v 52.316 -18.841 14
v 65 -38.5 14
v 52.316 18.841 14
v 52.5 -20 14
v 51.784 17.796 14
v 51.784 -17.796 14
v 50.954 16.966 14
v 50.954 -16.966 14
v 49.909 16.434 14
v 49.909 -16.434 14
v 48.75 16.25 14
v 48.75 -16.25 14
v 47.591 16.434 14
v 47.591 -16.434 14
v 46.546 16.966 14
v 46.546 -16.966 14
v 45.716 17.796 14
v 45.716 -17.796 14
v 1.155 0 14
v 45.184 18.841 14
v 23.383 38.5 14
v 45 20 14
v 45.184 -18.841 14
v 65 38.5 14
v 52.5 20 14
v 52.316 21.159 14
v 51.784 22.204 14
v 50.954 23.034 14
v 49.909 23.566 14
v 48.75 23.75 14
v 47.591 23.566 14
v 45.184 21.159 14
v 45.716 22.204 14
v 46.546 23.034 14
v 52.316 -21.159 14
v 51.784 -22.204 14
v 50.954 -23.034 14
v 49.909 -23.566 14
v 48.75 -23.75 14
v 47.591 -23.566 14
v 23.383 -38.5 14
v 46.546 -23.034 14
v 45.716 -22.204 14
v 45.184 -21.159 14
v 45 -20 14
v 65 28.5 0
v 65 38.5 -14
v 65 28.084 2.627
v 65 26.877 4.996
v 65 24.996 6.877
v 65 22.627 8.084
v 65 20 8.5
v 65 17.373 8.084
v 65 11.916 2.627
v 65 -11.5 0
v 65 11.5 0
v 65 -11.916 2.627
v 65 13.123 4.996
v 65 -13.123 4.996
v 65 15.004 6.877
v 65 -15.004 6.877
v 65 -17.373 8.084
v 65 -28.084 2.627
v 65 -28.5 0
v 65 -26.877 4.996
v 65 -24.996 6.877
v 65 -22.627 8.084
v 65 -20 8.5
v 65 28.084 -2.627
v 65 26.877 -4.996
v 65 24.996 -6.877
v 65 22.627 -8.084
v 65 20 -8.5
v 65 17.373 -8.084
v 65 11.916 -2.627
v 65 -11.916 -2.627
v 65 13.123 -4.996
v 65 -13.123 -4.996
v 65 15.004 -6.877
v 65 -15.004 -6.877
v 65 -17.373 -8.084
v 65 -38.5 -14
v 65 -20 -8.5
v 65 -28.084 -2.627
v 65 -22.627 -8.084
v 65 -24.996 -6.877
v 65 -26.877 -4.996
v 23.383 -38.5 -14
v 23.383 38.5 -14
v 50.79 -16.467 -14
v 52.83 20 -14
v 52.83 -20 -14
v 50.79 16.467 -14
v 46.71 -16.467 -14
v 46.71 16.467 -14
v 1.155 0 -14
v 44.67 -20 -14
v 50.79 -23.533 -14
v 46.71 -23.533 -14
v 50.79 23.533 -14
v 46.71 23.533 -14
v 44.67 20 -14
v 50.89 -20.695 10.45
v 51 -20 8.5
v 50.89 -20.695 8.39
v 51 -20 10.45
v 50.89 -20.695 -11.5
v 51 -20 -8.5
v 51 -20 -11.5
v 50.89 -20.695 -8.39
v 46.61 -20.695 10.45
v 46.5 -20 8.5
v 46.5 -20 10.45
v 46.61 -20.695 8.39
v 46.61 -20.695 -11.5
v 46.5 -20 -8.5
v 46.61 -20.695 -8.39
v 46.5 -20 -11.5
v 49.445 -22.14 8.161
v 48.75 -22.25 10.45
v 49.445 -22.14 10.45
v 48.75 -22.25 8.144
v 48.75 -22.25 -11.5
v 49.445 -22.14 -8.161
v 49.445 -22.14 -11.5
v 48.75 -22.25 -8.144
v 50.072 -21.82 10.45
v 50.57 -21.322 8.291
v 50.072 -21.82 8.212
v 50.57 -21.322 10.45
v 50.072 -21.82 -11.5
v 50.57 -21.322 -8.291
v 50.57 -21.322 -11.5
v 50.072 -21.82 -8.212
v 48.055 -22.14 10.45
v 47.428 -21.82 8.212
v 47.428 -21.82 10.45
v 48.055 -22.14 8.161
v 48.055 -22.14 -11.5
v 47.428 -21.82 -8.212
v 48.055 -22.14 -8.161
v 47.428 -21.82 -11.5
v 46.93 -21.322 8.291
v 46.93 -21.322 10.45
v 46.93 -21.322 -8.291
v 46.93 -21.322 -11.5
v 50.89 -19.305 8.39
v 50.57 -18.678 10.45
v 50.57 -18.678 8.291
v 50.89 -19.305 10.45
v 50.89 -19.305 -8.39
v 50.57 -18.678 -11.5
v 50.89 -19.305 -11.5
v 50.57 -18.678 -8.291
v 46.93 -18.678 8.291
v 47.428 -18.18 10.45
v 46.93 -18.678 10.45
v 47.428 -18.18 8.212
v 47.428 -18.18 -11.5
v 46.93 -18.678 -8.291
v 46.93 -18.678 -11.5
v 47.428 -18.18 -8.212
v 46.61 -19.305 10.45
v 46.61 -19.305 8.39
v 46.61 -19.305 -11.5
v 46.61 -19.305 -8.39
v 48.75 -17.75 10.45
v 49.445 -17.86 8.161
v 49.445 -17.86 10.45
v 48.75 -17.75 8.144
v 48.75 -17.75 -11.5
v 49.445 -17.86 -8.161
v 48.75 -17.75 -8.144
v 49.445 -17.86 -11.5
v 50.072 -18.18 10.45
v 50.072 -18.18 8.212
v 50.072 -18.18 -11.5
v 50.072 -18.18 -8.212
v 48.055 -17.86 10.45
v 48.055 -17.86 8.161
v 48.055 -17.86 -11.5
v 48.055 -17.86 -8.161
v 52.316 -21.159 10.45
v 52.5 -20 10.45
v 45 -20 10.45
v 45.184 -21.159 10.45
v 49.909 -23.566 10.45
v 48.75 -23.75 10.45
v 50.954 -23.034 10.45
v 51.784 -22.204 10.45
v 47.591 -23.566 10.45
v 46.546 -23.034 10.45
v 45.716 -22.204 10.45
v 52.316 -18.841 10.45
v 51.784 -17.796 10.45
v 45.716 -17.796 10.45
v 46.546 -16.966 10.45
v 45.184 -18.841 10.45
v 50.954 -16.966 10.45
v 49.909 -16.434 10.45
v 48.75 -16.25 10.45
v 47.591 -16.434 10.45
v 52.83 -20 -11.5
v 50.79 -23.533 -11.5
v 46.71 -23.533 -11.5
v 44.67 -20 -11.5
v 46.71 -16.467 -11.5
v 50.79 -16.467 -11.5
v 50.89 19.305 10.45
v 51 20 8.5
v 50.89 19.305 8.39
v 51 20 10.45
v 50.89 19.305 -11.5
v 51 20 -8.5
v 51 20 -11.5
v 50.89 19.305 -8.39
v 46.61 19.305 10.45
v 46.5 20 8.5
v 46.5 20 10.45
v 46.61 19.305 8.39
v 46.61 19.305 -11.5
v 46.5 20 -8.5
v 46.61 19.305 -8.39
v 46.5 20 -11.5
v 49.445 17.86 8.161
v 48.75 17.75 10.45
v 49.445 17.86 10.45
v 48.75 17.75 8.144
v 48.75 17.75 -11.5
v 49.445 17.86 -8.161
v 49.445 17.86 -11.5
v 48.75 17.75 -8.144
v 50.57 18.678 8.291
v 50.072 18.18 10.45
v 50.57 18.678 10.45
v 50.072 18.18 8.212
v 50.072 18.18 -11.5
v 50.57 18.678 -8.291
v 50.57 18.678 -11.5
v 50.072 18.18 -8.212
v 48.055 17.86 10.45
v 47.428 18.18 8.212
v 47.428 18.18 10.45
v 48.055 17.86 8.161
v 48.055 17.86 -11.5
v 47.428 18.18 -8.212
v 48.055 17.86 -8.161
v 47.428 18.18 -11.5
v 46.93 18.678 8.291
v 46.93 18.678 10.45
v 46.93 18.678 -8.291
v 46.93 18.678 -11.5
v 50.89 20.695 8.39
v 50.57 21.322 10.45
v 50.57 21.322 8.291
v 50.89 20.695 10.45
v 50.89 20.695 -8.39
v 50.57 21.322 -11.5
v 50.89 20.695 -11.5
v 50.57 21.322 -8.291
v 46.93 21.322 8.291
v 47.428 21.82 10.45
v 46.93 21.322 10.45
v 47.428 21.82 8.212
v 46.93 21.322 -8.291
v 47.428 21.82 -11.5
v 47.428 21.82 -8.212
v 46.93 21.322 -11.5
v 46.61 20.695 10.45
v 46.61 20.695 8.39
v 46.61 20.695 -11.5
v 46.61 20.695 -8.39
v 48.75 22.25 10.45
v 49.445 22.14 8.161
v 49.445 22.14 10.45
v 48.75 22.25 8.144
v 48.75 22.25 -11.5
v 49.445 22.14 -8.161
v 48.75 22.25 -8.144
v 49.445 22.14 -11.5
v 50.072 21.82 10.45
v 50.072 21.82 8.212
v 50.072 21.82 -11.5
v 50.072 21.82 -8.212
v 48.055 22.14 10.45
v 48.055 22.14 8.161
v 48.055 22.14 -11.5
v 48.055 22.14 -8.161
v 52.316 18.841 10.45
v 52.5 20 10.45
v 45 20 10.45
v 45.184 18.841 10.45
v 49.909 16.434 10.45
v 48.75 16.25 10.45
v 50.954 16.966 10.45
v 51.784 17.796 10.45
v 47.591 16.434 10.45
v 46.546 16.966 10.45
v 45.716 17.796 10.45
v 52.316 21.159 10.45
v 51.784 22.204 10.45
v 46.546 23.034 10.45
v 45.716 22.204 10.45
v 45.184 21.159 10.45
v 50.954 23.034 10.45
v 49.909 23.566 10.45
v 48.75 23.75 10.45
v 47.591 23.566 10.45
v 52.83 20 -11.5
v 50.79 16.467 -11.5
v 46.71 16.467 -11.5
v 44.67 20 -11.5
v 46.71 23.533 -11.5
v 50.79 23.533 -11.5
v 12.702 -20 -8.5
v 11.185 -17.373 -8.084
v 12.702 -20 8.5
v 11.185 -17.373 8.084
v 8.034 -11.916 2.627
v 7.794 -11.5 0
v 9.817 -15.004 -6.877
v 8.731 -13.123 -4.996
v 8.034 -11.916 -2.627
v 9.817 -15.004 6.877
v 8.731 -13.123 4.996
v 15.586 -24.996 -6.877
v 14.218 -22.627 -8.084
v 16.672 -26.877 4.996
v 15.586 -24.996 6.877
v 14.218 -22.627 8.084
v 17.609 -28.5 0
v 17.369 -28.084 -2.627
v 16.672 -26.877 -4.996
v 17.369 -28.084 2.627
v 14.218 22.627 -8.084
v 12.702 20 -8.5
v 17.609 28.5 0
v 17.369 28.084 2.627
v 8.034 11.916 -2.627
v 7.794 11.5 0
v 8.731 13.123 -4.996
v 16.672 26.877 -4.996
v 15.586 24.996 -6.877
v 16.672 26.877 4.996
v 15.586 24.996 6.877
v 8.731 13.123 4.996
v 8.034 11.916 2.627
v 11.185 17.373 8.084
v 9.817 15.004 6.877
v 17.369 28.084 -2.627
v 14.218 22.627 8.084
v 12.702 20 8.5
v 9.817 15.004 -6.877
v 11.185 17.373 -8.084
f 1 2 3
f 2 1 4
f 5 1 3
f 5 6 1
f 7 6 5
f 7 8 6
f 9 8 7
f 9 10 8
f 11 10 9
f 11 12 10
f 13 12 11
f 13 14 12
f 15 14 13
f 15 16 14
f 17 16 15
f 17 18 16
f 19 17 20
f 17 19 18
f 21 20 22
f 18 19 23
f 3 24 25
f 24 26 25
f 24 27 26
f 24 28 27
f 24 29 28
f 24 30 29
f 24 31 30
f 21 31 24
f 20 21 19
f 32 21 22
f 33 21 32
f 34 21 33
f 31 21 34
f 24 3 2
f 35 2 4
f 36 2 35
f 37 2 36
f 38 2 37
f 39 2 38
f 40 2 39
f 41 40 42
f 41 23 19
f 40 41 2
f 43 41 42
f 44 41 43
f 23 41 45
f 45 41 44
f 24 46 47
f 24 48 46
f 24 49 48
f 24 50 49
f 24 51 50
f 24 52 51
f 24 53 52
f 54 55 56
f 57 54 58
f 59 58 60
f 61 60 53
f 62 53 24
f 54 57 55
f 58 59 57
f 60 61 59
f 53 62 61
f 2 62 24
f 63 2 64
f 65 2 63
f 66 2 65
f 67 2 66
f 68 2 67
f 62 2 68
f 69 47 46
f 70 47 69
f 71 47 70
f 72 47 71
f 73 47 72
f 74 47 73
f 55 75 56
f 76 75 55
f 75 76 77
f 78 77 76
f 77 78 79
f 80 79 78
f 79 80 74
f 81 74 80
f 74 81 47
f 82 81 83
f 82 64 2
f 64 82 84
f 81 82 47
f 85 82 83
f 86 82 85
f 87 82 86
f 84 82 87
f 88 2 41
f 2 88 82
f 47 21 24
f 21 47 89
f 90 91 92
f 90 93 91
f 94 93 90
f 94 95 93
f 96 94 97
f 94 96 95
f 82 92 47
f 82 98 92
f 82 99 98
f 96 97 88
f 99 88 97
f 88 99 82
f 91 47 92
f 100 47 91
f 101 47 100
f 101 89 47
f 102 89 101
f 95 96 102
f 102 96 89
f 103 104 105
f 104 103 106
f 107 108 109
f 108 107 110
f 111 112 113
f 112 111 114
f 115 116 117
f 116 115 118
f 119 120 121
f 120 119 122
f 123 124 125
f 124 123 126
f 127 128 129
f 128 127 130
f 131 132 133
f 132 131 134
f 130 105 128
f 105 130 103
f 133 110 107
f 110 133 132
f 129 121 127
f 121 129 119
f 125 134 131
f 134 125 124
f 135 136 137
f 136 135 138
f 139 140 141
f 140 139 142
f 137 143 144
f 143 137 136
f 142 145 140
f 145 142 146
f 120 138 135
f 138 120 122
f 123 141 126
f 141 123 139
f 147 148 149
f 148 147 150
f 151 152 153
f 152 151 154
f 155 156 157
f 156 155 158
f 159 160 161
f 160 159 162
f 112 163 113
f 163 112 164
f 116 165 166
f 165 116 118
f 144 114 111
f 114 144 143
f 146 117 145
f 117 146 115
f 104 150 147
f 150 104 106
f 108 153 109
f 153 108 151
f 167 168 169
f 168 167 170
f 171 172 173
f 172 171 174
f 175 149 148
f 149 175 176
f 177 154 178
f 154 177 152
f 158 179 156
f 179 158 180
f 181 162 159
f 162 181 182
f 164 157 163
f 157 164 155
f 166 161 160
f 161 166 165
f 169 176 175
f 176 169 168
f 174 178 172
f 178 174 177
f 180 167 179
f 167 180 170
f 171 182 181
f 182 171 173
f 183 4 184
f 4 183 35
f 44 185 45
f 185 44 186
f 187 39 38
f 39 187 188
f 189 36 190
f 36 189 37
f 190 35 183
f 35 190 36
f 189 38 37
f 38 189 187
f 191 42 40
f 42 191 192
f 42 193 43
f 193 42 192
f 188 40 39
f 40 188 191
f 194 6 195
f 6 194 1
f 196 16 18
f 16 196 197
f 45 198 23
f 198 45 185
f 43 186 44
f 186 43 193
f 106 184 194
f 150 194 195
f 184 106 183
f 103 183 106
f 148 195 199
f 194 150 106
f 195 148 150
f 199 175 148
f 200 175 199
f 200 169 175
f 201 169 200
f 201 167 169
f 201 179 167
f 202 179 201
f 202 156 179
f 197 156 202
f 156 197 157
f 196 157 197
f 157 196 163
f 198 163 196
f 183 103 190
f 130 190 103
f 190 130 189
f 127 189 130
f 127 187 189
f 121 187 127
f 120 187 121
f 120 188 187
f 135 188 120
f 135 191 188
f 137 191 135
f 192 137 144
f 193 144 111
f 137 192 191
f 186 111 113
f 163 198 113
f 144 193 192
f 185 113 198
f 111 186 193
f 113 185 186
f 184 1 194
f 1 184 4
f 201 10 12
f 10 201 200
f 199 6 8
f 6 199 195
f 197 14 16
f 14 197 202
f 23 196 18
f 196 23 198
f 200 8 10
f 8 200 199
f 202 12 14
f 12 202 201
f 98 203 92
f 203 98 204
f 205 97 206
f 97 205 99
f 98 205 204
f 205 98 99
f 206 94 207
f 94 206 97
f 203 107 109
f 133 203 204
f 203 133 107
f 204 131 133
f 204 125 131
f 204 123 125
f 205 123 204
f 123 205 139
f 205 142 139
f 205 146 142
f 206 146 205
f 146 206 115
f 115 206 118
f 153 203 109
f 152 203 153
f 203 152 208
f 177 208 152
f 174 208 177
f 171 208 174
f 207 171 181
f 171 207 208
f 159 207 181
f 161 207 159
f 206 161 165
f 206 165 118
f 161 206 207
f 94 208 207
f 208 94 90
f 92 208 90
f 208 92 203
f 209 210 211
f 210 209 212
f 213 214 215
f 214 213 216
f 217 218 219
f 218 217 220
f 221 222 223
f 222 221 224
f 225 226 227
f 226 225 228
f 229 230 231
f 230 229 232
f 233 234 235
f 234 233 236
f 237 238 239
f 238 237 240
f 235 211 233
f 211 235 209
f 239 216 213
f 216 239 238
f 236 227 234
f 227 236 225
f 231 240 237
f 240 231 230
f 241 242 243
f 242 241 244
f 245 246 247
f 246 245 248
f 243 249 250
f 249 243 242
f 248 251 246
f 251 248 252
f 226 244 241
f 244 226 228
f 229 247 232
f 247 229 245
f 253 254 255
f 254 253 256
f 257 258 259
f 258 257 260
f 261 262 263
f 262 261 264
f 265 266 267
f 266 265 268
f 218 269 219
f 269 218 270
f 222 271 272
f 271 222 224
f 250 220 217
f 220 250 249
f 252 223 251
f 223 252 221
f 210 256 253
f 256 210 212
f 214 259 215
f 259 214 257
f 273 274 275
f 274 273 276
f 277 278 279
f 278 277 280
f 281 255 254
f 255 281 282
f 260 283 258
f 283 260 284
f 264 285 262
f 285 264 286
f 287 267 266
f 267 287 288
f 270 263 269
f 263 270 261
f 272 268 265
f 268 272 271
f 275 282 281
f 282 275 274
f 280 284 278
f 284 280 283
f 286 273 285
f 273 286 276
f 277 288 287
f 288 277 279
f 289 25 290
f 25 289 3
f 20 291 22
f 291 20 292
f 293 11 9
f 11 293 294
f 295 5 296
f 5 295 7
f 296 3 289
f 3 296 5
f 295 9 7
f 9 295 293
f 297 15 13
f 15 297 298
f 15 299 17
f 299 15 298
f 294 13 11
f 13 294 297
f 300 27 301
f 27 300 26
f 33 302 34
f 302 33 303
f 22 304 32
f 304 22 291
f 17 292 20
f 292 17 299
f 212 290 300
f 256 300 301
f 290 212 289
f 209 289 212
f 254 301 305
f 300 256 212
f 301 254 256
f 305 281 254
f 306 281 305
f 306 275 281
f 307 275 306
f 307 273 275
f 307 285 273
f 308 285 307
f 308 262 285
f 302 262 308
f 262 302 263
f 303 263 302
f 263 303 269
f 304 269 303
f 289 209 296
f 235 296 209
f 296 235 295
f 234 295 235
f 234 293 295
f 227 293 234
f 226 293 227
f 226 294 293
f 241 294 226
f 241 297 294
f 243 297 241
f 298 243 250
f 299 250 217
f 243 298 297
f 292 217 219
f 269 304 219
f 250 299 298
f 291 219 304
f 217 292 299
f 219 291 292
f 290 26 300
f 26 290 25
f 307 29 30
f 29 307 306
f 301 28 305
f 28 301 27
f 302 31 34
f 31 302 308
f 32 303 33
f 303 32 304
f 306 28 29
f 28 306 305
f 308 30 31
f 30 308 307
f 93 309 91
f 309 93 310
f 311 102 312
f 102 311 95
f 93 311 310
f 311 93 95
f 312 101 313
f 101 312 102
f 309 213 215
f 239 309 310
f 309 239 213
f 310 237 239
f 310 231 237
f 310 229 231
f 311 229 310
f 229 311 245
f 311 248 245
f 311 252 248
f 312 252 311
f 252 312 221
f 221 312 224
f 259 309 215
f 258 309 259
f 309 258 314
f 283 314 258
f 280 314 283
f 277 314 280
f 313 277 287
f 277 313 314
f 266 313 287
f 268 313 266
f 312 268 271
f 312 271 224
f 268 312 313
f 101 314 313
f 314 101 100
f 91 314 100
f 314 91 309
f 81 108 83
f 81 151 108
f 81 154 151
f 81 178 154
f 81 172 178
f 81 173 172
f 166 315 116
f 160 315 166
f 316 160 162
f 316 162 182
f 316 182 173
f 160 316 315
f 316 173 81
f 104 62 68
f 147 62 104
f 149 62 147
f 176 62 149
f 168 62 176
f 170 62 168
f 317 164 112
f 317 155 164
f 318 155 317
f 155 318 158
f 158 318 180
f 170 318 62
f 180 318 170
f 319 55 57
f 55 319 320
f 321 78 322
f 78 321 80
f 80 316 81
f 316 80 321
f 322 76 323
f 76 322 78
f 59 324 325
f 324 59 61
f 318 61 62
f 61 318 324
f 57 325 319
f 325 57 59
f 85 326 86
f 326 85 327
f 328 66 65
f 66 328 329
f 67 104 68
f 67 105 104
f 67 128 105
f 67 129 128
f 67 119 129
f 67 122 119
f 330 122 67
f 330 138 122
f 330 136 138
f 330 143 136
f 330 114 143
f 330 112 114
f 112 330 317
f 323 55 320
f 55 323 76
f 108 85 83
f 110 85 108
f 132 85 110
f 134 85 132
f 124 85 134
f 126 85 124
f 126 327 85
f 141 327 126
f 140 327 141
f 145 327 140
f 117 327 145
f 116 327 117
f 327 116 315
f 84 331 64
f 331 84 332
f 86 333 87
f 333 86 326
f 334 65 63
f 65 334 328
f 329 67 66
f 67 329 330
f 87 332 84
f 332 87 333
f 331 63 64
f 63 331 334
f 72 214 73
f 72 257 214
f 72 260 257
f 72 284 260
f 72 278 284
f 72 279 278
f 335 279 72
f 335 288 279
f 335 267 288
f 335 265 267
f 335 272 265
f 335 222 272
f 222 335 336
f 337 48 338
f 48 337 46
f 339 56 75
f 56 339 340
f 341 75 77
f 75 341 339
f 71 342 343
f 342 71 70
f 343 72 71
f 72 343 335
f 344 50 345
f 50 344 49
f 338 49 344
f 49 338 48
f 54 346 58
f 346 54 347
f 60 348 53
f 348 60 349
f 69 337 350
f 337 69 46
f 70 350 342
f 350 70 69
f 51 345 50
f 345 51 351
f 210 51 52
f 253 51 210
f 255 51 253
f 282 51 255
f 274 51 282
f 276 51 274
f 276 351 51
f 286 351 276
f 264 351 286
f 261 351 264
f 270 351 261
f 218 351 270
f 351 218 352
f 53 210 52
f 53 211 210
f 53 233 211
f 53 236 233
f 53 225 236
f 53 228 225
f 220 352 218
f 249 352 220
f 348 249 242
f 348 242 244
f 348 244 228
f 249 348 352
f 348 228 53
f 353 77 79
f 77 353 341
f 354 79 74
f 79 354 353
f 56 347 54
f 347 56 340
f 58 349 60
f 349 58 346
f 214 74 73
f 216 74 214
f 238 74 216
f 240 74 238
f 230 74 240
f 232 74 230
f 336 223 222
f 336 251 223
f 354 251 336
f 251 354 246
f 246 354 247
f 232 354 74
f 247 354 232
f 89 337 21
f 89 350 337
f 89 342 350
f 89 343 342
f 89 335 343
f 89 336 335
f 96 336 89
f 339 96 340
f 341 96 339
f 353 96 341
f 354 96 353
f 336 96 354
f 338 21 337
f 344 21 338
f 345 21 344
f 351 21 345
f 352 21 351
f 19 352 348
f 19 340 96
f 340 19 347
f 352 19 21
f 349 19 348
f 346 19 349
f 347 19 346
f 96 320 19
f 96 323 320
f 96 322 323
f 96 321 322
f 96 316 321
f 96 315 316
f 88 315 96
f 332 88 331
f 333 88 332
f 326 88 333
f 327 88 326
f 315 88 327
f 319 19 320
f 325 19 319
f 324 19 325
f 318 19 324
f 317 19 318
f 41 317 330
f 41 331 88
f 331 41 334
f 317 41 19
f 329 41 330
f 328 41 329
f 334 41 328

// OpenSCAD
difference() {
	translate(v = [0, 0, -14.0000000000]) {
		union() {
			cylinder($fn = 20, d = 0, h = 28);
			rotate(a = [0, 0, 0.0000000000]) {
				translate(v = [0, -38.5000000000, 0]) {
					cube(size = [65, 77.0000000000, 28]);
				}
			}
		}
	}
	rotate(a = [0, 0, 60]) {
		translate(v = [0, -1, -17.0000000000]) {
			cube(size = [200, 50, 100]);
		}
	}
	rotate(a = [0, 0, -60]) {
		translate(v = [0, -49, -17.0000000000]) {
			cube(size = [200, 50, 100]);
		}
	}
	rotate(a = [0, 90, 0.0000000000]) {
		translate(v = [0, -20.0000000000, 7]) {
			cylinder($fn = 20, d = 17.0000000000, h = 100);
		}
		translate(v = [0, 20.0000000000, 7]) {
			cylinder($fn = 20, d = 17.0000000000, h = 100);
		}
		translate(v = [2, -20.0000000000, 48.7500000000]) {
			rotate(a = [0, -90, 0]) {
				rotate(a = [180, 0, 0]) {
					translate(v = [0, 0, -12.5000000000]) {
						union() {
							translate(v = [0, 0, false]) {
								cylinder($fn = 20, d = 4.5000000000, h = 39.2000000000);
							}
							translate(v = [0, 0, -14.1500000000]) {
								cylinder($fn = 20, d = 7.5000000000, h = 14.2000000000);
							}
							translate(v = [0, 0, 22]) {
								cylinder($fn = 6, d = 8.1600000000, h = 10);
							}
						}
					}
				}
			}
		}
		translate(v = [2, 20.0000000000, 48.7500000000]) {
			rotate(a = [0, -90, 0]) {
				rotate(a = [180, 0, 0]) {
					translate(v = [0, 0, -12.5000000000]) {
						union() {
							translate(v = [0, 0, false]) {
								cylinder($fn = 20, d = 4.5000000000, h = 39.2000000000);
							}
							translate(v = [0, 0, -14.1500000000]) {
								cylinder($fn = 20, d = 7.5000000000, h = 14.2000000000);
							}
							translate(v = [0, 0, 22]) {
								cylinder($fn = 6, d = 8.1600000000, h = 10);
							}
						}
					}
				}
			}
		}
	}
}
/***********************************************
*********      SolidPython code:      **********
************************************************
 
import os
cq = 20

render = False
os.environ["PRINTEDSCOPE_QUALITY"] = str(cq)

from lib.model_parameters import *
from solid import *
from solid.utils import *
import numpy as np


g1p1_bearing = bearing_625
g1g1_space = 3 # jak velka bude mezera mezi zakladnou na zemi a AZ sestavou
g1p1_pipe_center_distance = 7 # jak daleko konci trubka od stredu
g1_pipe_in = 40
g1p1_diameter = 65
g1_foot_height = 60
g1_pipe_bolt = M4
g1_pipe_bolt['l'] = 35


g1_foot_length = 100
g1_foot_width = 50
g1_pipe_distance = 40
g1_pipe = pipe_16_2
g1_pipe['min_wall'] = 5
g1p4_wall = 2

g1_foot_bridge_height = 10
g1_foot_bridge_length =  g1_foot_length-50

#g1_foot_length = g1_pipe_distance+g1_pipe['D']+2*g1_pipe['min_wall']

# kostka, na ktere to lezi na zemi...
g1p2_width = 50
g1p2_length = 100
g1p2_height = g1_foot_height

def s111g1p01():
    pipe_bolt = g1_pipe_bolt
    pipe_height = pipe_bolt['l']
    pipe_height += pipe_bolt['k']
    #bottom = -(pipe_height-g1_pipe['min_wall']-g1_pipe['D']/2)-clear

    g1p1_cube_length = 65
    g1p1_base_height = 35+3

    bottom = -(g1p1_base_height/2)-clear

    #zakladni valec s kostkami pro trubky
    m= cylinder(h=g1p1_base_height, d=115, segments=cq)
    for x in range(3):
        m+= rotate([0, 0, 360/3*x])(
            translate([0, -(g1_pipe['D']+g1_pipe_distance+4*g1_pipe['min_wall'])/2,0])(
                cube([g1p1_cube_length, g1_pipe['D']+g1_pipe_distance+4*g1_pipe['min_wall'], g1p1_base_height])
            )
        )
    m = down(g1p1_base_height/2)(m)
    #m = hull()(m)

    m+= up(g1p1_base_height/2-1.1)(
            difference()(
                cylinder(h=5, d=80, segments=cq),
                down(clear/2)(cylinder(h=10+clear, d=80-3, segments=cq))
            )
        )
    
    m-=(up(g1p1_base_height/2-g1_pipe['min_wall']+1)(cylinder(h=5+clear, d1=80-3-5, d2=80-3, segments=cq)))


    for x in range(3):
        m-= rotate([0, 90, 360/3*x])(
            # diry pro zastrceni trubky
            translate([0, -g1_pipe_distance/2, g1p1_pipe_center_distance])(
                cylinder(d= base_pipe['D'], h=100, segments=cq)
            ),
            translate([0, g1_pipe_distance/2, g1p1_pipe_center_distance])(
                cylinder(d= base_pipe['D'], h=100, segments=cq)
            ),
            # diry pro srouby skrz trubky
                translate([2, -g1_pipe_distance/2, g1p1_diameter*0.75])(
                rotate([0, -90, 0])(
                    bolt_hole(pipe_bolt, nut=-3, align='center')
                )
            ),
            translate([2, g1_pipe_distance/2, g1p1_diameter*0.75])(
                rotate([0, -90, 0])(
                    (bolt_hole(pipe_bolt, nut=-3, align='center'))
                )
            ),

            # otvor pro srouby pro pridelani lozisek
            translate([0, 0, (g1p1_bearing['D'])])(
                left(bottom+g1p1_base_height-2-M3['k']-g1p1_bearing['B'])(
                    rotate([0, 180, 90])(
                        nut_pocket(pipe_bolt, g1p1_bearing['D'])
                    )
                ),
                left(bottom-1+M3['m']+g1p1_bearing['B'])(
                    rotate([0, 180, 90])(
                        nut_pocket(pipe_bolt, g1p1_bearing['D'])
                    )
                ),
                left(bottom+105+layer*1.5)(rotate([0, 90, 0])(
                    cylinder(d=M3['d'], h=100, segments=cq)
                ))
            )
        )

    # dira pro vyvedeni kabelu
    m -= translate([20, g1_pipe_distance/2, bottom+g1p1_base_height/2+clear])(
            cylinder(d=8, h=g1p1_base_height+clear)
        )
    m -= translate([20, -g1_pipe_distance/2, bottom+g1p1_base_height/2+clear])(
            cylinder(d=8, h=g1p1_base_height+clear)
        )

    # diry skrz pro loziska a sroub M5 a osazeni pro pridelani loziska
    m -= up(bottom)(
            cylinder(d=g1p1_bearing['D']+4*M3['dk']+1, h=M3['k']+2)
        )
    m -= up(bottom+M3['k']+2+layer*1)(
            debug(cylinder(d=g1p1_bearing['D'], h=g1p1_bearing['B'], segments=cq)) # Lozisko spodni
        )
    m -= up(bottom+M3['k']+2+layer*2+g1p1_bearing['B'])(
            cylinder(d=g1p1_bearing['D']-4, h=50, segments=cq)
        )
    m -= up(bottom+g1p1_base_height-M3['k']-2- g1p1_bearing['B'])(
            debug(cylinder(d=g1p1_bearing['D'], h=g1p1_bearing['B'], segments=cq))  # Lozisko horni
        )
    m -= up(bottom+g1p1_base_height-M3['k']-2-clear)(
            cylinder(d=g1p1_bearing['D']+4*M3['dk']+1, h=50)
        )

    return m


def s111g1d01():
    pipe_bolt = g1_pipe_bolt
    pipe_height = pipe_bolt['l']
    pipe_height += pipe_bolt['k']
    #bottom = -(pipe_height-g1_pipe['min_wall']-g1_pipe['D']/2)-clear

    g1p1_cube_length = 65
    g1p1_base_height = 25+3

    bottom = -(g1p1_base_height/2)-clear

    #zakladni valec s kostkami pro trubky
    m= cylinder(h=g1p1_base_height, d=0, segments=cq)
    for x in range(1):
        m+= rotate([0, 0, 360/3*x])(
            translate([0, -(g1_pipe['D']+g1_pipe_distance+4*g1_pipe['min_wall'])/2,0])(
                cube([g1p1_cube_length, g1_pipe['D']+g1_pipe_distance+4*g1_pipe['min_wall'], g1p1_base_height])
            )
        )
    m = down(g1p1_base_height/2)(m)
    #m = hull()(m)

    #m-= debug(rotate([0,0,60])(translate([0,-1, -base_pipe['D']/2])(cube([200, 50, 100]))))
    #m-= debug(rotate([0,0,-60])(translate([0,-50+1, -base_pipe['D']/2])(cube([200, 50, 100]))))

    # Uplne zariznuti...
    m-= (rotate([0,0,60])(translate([0,-1, -base_pipe['D']])(cube([200, 50, 100]))))
    m-= (rotate([0,0,-60])(translate([0,-50+1, -base_pipe['D']])(cube([200, 50, 100]))))

    #m-= debug(rotate([0,0,-90-60])(down(50)(cube(200))))


    for x in range(1):
        m-= rotate([0, 90, 360/3*x])(
            # diry pro zastrceni trubky
            translate([0, -g1_pipe_distance/2, g1p1_pipe_center_distance])(
                cylinder(d= base_pipe['D'], h=100, segments=cq)
            ),
            translate([0, g1_pipe_distance/2, g1p1_pipe_center_distance])(
                cylinder(d= base_pipe['D'], h=100, segments=cq)
            ),
            # diry pro srouby skrz trubky
                translate([2, -g1_pipe_distance/2, g1p1_diameter*0.75])(
                rotate([0, -90, 0])(
                    bolt_hole(pipe_bolt, nut=-3, align='center', l=25)
                )
            ),
            translate([2, g1_pipe_distance/2, g1p1_diameter*0.75])(
                rotate([0, -90, 0])(
                    (bolt_hole(pipe_bolt, nut=-3, align='center', l=25))
                )
            ),

        )



    return m



def s111g1p02():
    m = cylinder(d=g1p1_bearing['D']+4*M3['dk'], h=M3['k']+2)
    m-= down(clear/2)(cylinder(d=g1p1_bearing['bolt']['dk']+1, h=M3['k']+2+clear))
    for x in range(3):
        m-=rotate([180, 0, 360/3*x])(
            translate([-g1p1_bearing['D'], 0, -M3['k']])(
                bolt_hole(M3, l=30)
            )
        )

    return m

def s111g1p03():
    m = cylinder(d=g1p1_bearing['D']+4*M3['dk'], h=M3['k']+2)
    m-= down(clear/2)(cylinder(h=3, d=25))
    m-= down(clear/2)(cylinder(d=g1p1_bearing['D']-3, h=M3['k']+2+clear))
    for x in range(3):
        m-=rotate([180, 0, 360/3*x])(
            translate([-g1p1_bearing['D'], 0, -M3['k']])(
                bolt_hole(M3, l=30)
            )
        )

    return m

def s111g1p04(blind = True):

    ## zakladni tvar nohy
    m = left(g1_pipe_distance/2)(
            cylinder(h=g1_foot_width, d=g1_pipe['D']+g1_pipe['min_wall']*2, segments=cq)
        )
    m += right(g1_pipe_distance/2)(
            cylinder(h=g1_foot_width, d=g1_pipe['D']+g1_pipe['min_wall']*2, segments=cq)
        )
    m += translate([-g1_foot_length/2, -g1_foot_height, 0])(
            cube([g1_foot_length, 5, g1_foot_width])
        )
    m = hull()(m)


    ## odebrani premosteni (spodni oblouk)
    r = left(g1_foot_bridge_length/2)(
            cylinder(h=g1_foot_width+clear, d=g1_pipe['D'], segments=cq)
        )
    r += right(g1_foot_bridge_length/2)(
            cylinder(h=g1_foot_width+clear, d=g1_pipe['D'], segments=cq)
        )
    r += translate([-(g1_foot_bridge_length+g1_pipe['D'])/2, -g1_foot_bridge_height, 0])(
            cube([(g1_foot_bridge_length+g1_pipe['D']), 5, g1_foot_width+clear])
        )
    r = hull()(translate([0, -g1_foot_height+g1_foot_bridge_height-clear, -clear/2])(r))
    m-=r


    ## odebrani diry pro elektroniku
    r = translate([-g1_pipe_distance/2, -g1p2_height, g1p4_wall])(
            cube([g1_pipe_distance, g1p2_height, g1_foot_width-2*g1p4_wall])
        )
    r += translate([-g1_pipe_distance/2-M3['dk']*1, -g1p2_height, g1p4_wall])(
            cube([g1_pipe_distance+M3['dk']*2, g1_foot_bridge_height+base_pipe['D']/2+5, g1_foot_width-2*g1p4_wall])
        )
    
    r -= left(g1_pipe_distance/2)(
            cylinder(h=g1_foot_width, d=g1_pipe['D']+2.5*g1_pipe['min_wall'])
        )
    r -= right(g1_pipe_distance/2)(
            cylinder(h=g1_foot_width, d=g1_pipe['D']+2.5*g1_pipe['min_wall'])
        )
    m-=(r)


    ## Srouby pro pridelani spodniho vicka
    m-= (union()(
            translate([g1_foot_width/2-2, -g1_pipe_distance+1, g1_foot_length/2-10])(
                bolt_hole(M3, l=5, nut=5, nut_type='nut_pocket', rotation=[1,0,0], nut_rotation=-90, pocket_length=10)
            ),
            translate([g1_foot_width/2-2, -g1_pipe_distance+1 , 10])(
                bolt_hole(M3, l=5, nut=5, nut_type='nut_pocket', rotation=[1,0,0], nut_rotation=-90, pocket_length=10)
            ),
            translate([-g1_foot_width/2+2, -g1_pipe_distance+1, 10])(
                bolt_hole(M3, l=5, nut=5, nut_type='nut_pocket', rotation=[1,0,0], nut_rotation=90, pocket_length=10)
            ),
            translate([-g1_foot_width/2+2, -g1_pipe_distance+1, g1_foot_length/2-10])(
                bolt_hole(M3, l=5, nut=5, nut_type='nut_pocket', rotation=[1,0,0], nut_rotation=90, pocket_length=10)
            )
        ))



    ## diry na trubky a srouby skrz trubky
    m -= translate([-g1_pipe_distance/2, 0, 2])(
            cylinder(h=g1_foot_width, d=g1_pipe['D'], segments=cq)
        )
    m -= translate([g1_pipe_distance/2, 0,2])(
            cylinder(h=g1_foot_width, d=g1_pipe['D'], segments=cq)
        )
    m -= translate([g1_pipe_distance/2, g1_pipe['D']/2+g1_pipe['min_wall'], 2+g1p1_diameter*0.5-g1p1_pipe_center_distance])(
            bolt_hole(M4, align='head', rotation=np.array([-1,0,0]), nut=-4, l=25, overlap=6)
            )
    m -=translate([-g1_pipe_distance/2, g1_pipe['D']/2+g1_pipe['min_wall'], 2+g1p1_diameter*0.5-g1p1_pipe_center_distance])(
            bolt_hole(M4, align='head', rotation=np.array([-1,0,0]), nut=-4, l=25, overlap=6)
        )

    m-= translate([0, g1_pipe['D']/2+g1_pipe['min_wall']-g1p1_bearing['D']/2+g1g1_space, g1_foot_width/2+2-g1p1_bearing['B']/2])(
            hull()(
                cylinder(d=g1p1_bearing['D']+2, h=g1p1_bearing['B']+2),
                forward(g1p1_bearing['D'])(cylinder(d=g1p1_bearing['D']+2, h=g1p1_bearing['B']+2))
            ),
            bolt_hole(M5, l=20, overlap =8, head_overlap=50, align='center', nut = -0.1, nut_type='nut_pocket', nut_rotation=180)
        )

    if blind:
        m+= translate([-5, 0, 0])(cube([10, layer*4, g1_foot_width]))
        m+= translate([-10, -layer*4+g1_pipe['D']/2+g1_pipe['min_wall'], 0])(cube([20, layer*4, g1_foot_width]))
        m+= translate([-10, 0, g1_foot_width-layer*4])(cube([20, g1_pipe['D']/2+g1_pipe['min_wall'], layer*4]))

    return forward(g1_foot_width/2+2)(rotate([90, 0, 0])(m))

def s111g1p05():
    m = s111g1p04()

    # 12V konektor
    m -= debug(translate([15,g1p2_height/2-3+layer ,-23])(rotate([90,0,0])(cylinder(h=2, d=el_connector_12v_panel['d'], segments=cq))))
    # LED 3mm
    #m -= debug(translate([10,g1p2_height/2-2+layer ,-10])(rotate([90,0,0])(cylinder(h=2, d=3.3))))
    # Kulaty vypinac 20.6mm, KWS 140RE
    m -= debug(translate([-5,g1p2_height/2-3+layer ,-23])(rotate([90,0,0])(cylinder(h=2, d=20.6+0.5, segments=cq))))

    m -= (translate([-g1p2_width/2+12,g1p2_height/2-10 ,-20])(rotate([0,-20,0])(cylinder(h=20, d=10))))
    m -= (translate([g1p2_width/2-12,g1p2_height/2-10 ,-20])(rotate([0,20,0])(cylinder(h=20, d=10))))
    
    return m

def s111g1p06():

    ## zakladni tvar nohy
    m = left(g1_pipe_distance/2)(
            cylinder(h=g1_foot_width, d=g1_pipe['D']+g1_pipe['min_wall']*2, segments=cq)
        )
    m += right(g1_pipe_distance/2)(
            cylinder(h=g1_foot_width, d=g1_pipe['D']+g1_pipe['min_wall']*2, segments=cq)
        )
    m = hull()(m)

    ## diry na trubky a srouby skrz trubky
    m -= translate([-g1_pipe_distance/2, 0, -clear])(
            cylinder(h=g1_foot_width+2*clear, d=g1_pipe['D'], segments=cq)
        )
    m -= translate([g1_pipe_distance/2, 0, -clear])(
            cylinder(h=g1_foot_width+2*clear, d=g1_pipe['D'], segments=cq)
        )
    m -= translate([g1_pipe_distance/2, g1_pipe['D']/2+g1_pipe['min_wall'], 2+g1p1_diameter*0.5-g1p1_pipe_center_distance])(
            bolt_hole(M4, align='head', rotation=np.array([-1,0,0]), nut=-4)
            )
    m -=translate([-g1_pipe_distance/2, g1_pipe['D']/2+g1_pipe['min_wall'], 2+g1p1_diameter*0.5-g1p1_pipe_center_distance])(
            bolt_hole(M4, align='head', rotation=np.array([-1,0,0]), nut=-4)
        )

    m-= translate([0, g1_pipe['D']/2+g1_pipe['min_wall']-g1p1_bearing['D']/2+g1g1_space, g1_foot_width/2+1.5-g1p1_bearing['B']/2])(
            hull()(
                cylinder(d=g1p1_bearing['D']+2, h=g1p1_bearing['B']+2),
                forward(g1p1_bearing['D'])(cylinder(d=g1p1_bearing['D']+2, h=g1p1_bearing['B']+2))
            ),
            bolt_hole(M5, l=20, overlap =8, head_overlap=50, align='center', nut = -0.1, nut_type='nut_pocket', nut_rotation=180)
        )

    return forward(g1_foot_width/2+2)(rotate([90, 0, 0])(m))


def s111g1p07():
    m = up(5/2)(cube([g1_pipe_distance+M3['dk']*2, g1_foot_bridge_height+base_pipe['D']/2+5, 5], center=True))
    for x in [-10, 10]:
        for y in [-5, 5]:
            m-=translate([x,y,0])(cylinder(d=M3['d'], h=10, segments=cq))
            m-=translate([x,y,2+clear])(cylinder(d=M3['dk'], h=3, segments=cq))
    return m





def s111g1_info():
    print("\nInformace o dilech 111_10**.scad")
    print("===============================")
    print("Staticka zakladna dalekohledu")
    print("Skrz trubky je sroub", g1_pipe_bolt)
    print("Stredy trubek jsou vzdaleny", g1_pipe_distance)
    print("AL tyce o D: {} mm, delka: {} mm, {}ks".format(base_pipe['D'], g2_octangle_do/2+g1p2_width/2-2-g1p1_pipe_center_distance, 6))


scad_render_to_file(s111g1p01(), '../scad/111_1001.scad')
scad_render_to_file(s111g1d01(), '../scad/111_1301.scad')
scad_render_to_file(s111g1p02(), '../scad/111_1002.scad')
scad_render_to_file(s111g1p03(), '../scad/111_1003.scad')
scad_render_to_file(s111g1p04(), '../scad/111_1004.scad')
scad_render_to_file(s111g1p05(), '../scad/111_1005.scad')
scad_render_to_file(s111g1p06(), '../scad/111_1006.scad')
scad_render_to_file(s111g1p07(), '../scad/111_1007.scad')

render = False
if render:
    cq = 150
    generate(s111g1p01(), '111_1001')
    generate(s111g1d01(), '111_1301')
    generate(s111g1p02(), '111_1002')
    generate(s111g1p03(), '111_1003')
    generate(s111g1p04(), '111_1004')
    generate(s111g1p05(), '111_1005')
    generate(s111g1p06(), '111_1006')
    generate(s111g1p07(), '111_1007')


#cq = 150
#generate(s111g1p01(), '111_1001')
#generate(s111g1d01(), '111_1301') 
 
************************************************/
